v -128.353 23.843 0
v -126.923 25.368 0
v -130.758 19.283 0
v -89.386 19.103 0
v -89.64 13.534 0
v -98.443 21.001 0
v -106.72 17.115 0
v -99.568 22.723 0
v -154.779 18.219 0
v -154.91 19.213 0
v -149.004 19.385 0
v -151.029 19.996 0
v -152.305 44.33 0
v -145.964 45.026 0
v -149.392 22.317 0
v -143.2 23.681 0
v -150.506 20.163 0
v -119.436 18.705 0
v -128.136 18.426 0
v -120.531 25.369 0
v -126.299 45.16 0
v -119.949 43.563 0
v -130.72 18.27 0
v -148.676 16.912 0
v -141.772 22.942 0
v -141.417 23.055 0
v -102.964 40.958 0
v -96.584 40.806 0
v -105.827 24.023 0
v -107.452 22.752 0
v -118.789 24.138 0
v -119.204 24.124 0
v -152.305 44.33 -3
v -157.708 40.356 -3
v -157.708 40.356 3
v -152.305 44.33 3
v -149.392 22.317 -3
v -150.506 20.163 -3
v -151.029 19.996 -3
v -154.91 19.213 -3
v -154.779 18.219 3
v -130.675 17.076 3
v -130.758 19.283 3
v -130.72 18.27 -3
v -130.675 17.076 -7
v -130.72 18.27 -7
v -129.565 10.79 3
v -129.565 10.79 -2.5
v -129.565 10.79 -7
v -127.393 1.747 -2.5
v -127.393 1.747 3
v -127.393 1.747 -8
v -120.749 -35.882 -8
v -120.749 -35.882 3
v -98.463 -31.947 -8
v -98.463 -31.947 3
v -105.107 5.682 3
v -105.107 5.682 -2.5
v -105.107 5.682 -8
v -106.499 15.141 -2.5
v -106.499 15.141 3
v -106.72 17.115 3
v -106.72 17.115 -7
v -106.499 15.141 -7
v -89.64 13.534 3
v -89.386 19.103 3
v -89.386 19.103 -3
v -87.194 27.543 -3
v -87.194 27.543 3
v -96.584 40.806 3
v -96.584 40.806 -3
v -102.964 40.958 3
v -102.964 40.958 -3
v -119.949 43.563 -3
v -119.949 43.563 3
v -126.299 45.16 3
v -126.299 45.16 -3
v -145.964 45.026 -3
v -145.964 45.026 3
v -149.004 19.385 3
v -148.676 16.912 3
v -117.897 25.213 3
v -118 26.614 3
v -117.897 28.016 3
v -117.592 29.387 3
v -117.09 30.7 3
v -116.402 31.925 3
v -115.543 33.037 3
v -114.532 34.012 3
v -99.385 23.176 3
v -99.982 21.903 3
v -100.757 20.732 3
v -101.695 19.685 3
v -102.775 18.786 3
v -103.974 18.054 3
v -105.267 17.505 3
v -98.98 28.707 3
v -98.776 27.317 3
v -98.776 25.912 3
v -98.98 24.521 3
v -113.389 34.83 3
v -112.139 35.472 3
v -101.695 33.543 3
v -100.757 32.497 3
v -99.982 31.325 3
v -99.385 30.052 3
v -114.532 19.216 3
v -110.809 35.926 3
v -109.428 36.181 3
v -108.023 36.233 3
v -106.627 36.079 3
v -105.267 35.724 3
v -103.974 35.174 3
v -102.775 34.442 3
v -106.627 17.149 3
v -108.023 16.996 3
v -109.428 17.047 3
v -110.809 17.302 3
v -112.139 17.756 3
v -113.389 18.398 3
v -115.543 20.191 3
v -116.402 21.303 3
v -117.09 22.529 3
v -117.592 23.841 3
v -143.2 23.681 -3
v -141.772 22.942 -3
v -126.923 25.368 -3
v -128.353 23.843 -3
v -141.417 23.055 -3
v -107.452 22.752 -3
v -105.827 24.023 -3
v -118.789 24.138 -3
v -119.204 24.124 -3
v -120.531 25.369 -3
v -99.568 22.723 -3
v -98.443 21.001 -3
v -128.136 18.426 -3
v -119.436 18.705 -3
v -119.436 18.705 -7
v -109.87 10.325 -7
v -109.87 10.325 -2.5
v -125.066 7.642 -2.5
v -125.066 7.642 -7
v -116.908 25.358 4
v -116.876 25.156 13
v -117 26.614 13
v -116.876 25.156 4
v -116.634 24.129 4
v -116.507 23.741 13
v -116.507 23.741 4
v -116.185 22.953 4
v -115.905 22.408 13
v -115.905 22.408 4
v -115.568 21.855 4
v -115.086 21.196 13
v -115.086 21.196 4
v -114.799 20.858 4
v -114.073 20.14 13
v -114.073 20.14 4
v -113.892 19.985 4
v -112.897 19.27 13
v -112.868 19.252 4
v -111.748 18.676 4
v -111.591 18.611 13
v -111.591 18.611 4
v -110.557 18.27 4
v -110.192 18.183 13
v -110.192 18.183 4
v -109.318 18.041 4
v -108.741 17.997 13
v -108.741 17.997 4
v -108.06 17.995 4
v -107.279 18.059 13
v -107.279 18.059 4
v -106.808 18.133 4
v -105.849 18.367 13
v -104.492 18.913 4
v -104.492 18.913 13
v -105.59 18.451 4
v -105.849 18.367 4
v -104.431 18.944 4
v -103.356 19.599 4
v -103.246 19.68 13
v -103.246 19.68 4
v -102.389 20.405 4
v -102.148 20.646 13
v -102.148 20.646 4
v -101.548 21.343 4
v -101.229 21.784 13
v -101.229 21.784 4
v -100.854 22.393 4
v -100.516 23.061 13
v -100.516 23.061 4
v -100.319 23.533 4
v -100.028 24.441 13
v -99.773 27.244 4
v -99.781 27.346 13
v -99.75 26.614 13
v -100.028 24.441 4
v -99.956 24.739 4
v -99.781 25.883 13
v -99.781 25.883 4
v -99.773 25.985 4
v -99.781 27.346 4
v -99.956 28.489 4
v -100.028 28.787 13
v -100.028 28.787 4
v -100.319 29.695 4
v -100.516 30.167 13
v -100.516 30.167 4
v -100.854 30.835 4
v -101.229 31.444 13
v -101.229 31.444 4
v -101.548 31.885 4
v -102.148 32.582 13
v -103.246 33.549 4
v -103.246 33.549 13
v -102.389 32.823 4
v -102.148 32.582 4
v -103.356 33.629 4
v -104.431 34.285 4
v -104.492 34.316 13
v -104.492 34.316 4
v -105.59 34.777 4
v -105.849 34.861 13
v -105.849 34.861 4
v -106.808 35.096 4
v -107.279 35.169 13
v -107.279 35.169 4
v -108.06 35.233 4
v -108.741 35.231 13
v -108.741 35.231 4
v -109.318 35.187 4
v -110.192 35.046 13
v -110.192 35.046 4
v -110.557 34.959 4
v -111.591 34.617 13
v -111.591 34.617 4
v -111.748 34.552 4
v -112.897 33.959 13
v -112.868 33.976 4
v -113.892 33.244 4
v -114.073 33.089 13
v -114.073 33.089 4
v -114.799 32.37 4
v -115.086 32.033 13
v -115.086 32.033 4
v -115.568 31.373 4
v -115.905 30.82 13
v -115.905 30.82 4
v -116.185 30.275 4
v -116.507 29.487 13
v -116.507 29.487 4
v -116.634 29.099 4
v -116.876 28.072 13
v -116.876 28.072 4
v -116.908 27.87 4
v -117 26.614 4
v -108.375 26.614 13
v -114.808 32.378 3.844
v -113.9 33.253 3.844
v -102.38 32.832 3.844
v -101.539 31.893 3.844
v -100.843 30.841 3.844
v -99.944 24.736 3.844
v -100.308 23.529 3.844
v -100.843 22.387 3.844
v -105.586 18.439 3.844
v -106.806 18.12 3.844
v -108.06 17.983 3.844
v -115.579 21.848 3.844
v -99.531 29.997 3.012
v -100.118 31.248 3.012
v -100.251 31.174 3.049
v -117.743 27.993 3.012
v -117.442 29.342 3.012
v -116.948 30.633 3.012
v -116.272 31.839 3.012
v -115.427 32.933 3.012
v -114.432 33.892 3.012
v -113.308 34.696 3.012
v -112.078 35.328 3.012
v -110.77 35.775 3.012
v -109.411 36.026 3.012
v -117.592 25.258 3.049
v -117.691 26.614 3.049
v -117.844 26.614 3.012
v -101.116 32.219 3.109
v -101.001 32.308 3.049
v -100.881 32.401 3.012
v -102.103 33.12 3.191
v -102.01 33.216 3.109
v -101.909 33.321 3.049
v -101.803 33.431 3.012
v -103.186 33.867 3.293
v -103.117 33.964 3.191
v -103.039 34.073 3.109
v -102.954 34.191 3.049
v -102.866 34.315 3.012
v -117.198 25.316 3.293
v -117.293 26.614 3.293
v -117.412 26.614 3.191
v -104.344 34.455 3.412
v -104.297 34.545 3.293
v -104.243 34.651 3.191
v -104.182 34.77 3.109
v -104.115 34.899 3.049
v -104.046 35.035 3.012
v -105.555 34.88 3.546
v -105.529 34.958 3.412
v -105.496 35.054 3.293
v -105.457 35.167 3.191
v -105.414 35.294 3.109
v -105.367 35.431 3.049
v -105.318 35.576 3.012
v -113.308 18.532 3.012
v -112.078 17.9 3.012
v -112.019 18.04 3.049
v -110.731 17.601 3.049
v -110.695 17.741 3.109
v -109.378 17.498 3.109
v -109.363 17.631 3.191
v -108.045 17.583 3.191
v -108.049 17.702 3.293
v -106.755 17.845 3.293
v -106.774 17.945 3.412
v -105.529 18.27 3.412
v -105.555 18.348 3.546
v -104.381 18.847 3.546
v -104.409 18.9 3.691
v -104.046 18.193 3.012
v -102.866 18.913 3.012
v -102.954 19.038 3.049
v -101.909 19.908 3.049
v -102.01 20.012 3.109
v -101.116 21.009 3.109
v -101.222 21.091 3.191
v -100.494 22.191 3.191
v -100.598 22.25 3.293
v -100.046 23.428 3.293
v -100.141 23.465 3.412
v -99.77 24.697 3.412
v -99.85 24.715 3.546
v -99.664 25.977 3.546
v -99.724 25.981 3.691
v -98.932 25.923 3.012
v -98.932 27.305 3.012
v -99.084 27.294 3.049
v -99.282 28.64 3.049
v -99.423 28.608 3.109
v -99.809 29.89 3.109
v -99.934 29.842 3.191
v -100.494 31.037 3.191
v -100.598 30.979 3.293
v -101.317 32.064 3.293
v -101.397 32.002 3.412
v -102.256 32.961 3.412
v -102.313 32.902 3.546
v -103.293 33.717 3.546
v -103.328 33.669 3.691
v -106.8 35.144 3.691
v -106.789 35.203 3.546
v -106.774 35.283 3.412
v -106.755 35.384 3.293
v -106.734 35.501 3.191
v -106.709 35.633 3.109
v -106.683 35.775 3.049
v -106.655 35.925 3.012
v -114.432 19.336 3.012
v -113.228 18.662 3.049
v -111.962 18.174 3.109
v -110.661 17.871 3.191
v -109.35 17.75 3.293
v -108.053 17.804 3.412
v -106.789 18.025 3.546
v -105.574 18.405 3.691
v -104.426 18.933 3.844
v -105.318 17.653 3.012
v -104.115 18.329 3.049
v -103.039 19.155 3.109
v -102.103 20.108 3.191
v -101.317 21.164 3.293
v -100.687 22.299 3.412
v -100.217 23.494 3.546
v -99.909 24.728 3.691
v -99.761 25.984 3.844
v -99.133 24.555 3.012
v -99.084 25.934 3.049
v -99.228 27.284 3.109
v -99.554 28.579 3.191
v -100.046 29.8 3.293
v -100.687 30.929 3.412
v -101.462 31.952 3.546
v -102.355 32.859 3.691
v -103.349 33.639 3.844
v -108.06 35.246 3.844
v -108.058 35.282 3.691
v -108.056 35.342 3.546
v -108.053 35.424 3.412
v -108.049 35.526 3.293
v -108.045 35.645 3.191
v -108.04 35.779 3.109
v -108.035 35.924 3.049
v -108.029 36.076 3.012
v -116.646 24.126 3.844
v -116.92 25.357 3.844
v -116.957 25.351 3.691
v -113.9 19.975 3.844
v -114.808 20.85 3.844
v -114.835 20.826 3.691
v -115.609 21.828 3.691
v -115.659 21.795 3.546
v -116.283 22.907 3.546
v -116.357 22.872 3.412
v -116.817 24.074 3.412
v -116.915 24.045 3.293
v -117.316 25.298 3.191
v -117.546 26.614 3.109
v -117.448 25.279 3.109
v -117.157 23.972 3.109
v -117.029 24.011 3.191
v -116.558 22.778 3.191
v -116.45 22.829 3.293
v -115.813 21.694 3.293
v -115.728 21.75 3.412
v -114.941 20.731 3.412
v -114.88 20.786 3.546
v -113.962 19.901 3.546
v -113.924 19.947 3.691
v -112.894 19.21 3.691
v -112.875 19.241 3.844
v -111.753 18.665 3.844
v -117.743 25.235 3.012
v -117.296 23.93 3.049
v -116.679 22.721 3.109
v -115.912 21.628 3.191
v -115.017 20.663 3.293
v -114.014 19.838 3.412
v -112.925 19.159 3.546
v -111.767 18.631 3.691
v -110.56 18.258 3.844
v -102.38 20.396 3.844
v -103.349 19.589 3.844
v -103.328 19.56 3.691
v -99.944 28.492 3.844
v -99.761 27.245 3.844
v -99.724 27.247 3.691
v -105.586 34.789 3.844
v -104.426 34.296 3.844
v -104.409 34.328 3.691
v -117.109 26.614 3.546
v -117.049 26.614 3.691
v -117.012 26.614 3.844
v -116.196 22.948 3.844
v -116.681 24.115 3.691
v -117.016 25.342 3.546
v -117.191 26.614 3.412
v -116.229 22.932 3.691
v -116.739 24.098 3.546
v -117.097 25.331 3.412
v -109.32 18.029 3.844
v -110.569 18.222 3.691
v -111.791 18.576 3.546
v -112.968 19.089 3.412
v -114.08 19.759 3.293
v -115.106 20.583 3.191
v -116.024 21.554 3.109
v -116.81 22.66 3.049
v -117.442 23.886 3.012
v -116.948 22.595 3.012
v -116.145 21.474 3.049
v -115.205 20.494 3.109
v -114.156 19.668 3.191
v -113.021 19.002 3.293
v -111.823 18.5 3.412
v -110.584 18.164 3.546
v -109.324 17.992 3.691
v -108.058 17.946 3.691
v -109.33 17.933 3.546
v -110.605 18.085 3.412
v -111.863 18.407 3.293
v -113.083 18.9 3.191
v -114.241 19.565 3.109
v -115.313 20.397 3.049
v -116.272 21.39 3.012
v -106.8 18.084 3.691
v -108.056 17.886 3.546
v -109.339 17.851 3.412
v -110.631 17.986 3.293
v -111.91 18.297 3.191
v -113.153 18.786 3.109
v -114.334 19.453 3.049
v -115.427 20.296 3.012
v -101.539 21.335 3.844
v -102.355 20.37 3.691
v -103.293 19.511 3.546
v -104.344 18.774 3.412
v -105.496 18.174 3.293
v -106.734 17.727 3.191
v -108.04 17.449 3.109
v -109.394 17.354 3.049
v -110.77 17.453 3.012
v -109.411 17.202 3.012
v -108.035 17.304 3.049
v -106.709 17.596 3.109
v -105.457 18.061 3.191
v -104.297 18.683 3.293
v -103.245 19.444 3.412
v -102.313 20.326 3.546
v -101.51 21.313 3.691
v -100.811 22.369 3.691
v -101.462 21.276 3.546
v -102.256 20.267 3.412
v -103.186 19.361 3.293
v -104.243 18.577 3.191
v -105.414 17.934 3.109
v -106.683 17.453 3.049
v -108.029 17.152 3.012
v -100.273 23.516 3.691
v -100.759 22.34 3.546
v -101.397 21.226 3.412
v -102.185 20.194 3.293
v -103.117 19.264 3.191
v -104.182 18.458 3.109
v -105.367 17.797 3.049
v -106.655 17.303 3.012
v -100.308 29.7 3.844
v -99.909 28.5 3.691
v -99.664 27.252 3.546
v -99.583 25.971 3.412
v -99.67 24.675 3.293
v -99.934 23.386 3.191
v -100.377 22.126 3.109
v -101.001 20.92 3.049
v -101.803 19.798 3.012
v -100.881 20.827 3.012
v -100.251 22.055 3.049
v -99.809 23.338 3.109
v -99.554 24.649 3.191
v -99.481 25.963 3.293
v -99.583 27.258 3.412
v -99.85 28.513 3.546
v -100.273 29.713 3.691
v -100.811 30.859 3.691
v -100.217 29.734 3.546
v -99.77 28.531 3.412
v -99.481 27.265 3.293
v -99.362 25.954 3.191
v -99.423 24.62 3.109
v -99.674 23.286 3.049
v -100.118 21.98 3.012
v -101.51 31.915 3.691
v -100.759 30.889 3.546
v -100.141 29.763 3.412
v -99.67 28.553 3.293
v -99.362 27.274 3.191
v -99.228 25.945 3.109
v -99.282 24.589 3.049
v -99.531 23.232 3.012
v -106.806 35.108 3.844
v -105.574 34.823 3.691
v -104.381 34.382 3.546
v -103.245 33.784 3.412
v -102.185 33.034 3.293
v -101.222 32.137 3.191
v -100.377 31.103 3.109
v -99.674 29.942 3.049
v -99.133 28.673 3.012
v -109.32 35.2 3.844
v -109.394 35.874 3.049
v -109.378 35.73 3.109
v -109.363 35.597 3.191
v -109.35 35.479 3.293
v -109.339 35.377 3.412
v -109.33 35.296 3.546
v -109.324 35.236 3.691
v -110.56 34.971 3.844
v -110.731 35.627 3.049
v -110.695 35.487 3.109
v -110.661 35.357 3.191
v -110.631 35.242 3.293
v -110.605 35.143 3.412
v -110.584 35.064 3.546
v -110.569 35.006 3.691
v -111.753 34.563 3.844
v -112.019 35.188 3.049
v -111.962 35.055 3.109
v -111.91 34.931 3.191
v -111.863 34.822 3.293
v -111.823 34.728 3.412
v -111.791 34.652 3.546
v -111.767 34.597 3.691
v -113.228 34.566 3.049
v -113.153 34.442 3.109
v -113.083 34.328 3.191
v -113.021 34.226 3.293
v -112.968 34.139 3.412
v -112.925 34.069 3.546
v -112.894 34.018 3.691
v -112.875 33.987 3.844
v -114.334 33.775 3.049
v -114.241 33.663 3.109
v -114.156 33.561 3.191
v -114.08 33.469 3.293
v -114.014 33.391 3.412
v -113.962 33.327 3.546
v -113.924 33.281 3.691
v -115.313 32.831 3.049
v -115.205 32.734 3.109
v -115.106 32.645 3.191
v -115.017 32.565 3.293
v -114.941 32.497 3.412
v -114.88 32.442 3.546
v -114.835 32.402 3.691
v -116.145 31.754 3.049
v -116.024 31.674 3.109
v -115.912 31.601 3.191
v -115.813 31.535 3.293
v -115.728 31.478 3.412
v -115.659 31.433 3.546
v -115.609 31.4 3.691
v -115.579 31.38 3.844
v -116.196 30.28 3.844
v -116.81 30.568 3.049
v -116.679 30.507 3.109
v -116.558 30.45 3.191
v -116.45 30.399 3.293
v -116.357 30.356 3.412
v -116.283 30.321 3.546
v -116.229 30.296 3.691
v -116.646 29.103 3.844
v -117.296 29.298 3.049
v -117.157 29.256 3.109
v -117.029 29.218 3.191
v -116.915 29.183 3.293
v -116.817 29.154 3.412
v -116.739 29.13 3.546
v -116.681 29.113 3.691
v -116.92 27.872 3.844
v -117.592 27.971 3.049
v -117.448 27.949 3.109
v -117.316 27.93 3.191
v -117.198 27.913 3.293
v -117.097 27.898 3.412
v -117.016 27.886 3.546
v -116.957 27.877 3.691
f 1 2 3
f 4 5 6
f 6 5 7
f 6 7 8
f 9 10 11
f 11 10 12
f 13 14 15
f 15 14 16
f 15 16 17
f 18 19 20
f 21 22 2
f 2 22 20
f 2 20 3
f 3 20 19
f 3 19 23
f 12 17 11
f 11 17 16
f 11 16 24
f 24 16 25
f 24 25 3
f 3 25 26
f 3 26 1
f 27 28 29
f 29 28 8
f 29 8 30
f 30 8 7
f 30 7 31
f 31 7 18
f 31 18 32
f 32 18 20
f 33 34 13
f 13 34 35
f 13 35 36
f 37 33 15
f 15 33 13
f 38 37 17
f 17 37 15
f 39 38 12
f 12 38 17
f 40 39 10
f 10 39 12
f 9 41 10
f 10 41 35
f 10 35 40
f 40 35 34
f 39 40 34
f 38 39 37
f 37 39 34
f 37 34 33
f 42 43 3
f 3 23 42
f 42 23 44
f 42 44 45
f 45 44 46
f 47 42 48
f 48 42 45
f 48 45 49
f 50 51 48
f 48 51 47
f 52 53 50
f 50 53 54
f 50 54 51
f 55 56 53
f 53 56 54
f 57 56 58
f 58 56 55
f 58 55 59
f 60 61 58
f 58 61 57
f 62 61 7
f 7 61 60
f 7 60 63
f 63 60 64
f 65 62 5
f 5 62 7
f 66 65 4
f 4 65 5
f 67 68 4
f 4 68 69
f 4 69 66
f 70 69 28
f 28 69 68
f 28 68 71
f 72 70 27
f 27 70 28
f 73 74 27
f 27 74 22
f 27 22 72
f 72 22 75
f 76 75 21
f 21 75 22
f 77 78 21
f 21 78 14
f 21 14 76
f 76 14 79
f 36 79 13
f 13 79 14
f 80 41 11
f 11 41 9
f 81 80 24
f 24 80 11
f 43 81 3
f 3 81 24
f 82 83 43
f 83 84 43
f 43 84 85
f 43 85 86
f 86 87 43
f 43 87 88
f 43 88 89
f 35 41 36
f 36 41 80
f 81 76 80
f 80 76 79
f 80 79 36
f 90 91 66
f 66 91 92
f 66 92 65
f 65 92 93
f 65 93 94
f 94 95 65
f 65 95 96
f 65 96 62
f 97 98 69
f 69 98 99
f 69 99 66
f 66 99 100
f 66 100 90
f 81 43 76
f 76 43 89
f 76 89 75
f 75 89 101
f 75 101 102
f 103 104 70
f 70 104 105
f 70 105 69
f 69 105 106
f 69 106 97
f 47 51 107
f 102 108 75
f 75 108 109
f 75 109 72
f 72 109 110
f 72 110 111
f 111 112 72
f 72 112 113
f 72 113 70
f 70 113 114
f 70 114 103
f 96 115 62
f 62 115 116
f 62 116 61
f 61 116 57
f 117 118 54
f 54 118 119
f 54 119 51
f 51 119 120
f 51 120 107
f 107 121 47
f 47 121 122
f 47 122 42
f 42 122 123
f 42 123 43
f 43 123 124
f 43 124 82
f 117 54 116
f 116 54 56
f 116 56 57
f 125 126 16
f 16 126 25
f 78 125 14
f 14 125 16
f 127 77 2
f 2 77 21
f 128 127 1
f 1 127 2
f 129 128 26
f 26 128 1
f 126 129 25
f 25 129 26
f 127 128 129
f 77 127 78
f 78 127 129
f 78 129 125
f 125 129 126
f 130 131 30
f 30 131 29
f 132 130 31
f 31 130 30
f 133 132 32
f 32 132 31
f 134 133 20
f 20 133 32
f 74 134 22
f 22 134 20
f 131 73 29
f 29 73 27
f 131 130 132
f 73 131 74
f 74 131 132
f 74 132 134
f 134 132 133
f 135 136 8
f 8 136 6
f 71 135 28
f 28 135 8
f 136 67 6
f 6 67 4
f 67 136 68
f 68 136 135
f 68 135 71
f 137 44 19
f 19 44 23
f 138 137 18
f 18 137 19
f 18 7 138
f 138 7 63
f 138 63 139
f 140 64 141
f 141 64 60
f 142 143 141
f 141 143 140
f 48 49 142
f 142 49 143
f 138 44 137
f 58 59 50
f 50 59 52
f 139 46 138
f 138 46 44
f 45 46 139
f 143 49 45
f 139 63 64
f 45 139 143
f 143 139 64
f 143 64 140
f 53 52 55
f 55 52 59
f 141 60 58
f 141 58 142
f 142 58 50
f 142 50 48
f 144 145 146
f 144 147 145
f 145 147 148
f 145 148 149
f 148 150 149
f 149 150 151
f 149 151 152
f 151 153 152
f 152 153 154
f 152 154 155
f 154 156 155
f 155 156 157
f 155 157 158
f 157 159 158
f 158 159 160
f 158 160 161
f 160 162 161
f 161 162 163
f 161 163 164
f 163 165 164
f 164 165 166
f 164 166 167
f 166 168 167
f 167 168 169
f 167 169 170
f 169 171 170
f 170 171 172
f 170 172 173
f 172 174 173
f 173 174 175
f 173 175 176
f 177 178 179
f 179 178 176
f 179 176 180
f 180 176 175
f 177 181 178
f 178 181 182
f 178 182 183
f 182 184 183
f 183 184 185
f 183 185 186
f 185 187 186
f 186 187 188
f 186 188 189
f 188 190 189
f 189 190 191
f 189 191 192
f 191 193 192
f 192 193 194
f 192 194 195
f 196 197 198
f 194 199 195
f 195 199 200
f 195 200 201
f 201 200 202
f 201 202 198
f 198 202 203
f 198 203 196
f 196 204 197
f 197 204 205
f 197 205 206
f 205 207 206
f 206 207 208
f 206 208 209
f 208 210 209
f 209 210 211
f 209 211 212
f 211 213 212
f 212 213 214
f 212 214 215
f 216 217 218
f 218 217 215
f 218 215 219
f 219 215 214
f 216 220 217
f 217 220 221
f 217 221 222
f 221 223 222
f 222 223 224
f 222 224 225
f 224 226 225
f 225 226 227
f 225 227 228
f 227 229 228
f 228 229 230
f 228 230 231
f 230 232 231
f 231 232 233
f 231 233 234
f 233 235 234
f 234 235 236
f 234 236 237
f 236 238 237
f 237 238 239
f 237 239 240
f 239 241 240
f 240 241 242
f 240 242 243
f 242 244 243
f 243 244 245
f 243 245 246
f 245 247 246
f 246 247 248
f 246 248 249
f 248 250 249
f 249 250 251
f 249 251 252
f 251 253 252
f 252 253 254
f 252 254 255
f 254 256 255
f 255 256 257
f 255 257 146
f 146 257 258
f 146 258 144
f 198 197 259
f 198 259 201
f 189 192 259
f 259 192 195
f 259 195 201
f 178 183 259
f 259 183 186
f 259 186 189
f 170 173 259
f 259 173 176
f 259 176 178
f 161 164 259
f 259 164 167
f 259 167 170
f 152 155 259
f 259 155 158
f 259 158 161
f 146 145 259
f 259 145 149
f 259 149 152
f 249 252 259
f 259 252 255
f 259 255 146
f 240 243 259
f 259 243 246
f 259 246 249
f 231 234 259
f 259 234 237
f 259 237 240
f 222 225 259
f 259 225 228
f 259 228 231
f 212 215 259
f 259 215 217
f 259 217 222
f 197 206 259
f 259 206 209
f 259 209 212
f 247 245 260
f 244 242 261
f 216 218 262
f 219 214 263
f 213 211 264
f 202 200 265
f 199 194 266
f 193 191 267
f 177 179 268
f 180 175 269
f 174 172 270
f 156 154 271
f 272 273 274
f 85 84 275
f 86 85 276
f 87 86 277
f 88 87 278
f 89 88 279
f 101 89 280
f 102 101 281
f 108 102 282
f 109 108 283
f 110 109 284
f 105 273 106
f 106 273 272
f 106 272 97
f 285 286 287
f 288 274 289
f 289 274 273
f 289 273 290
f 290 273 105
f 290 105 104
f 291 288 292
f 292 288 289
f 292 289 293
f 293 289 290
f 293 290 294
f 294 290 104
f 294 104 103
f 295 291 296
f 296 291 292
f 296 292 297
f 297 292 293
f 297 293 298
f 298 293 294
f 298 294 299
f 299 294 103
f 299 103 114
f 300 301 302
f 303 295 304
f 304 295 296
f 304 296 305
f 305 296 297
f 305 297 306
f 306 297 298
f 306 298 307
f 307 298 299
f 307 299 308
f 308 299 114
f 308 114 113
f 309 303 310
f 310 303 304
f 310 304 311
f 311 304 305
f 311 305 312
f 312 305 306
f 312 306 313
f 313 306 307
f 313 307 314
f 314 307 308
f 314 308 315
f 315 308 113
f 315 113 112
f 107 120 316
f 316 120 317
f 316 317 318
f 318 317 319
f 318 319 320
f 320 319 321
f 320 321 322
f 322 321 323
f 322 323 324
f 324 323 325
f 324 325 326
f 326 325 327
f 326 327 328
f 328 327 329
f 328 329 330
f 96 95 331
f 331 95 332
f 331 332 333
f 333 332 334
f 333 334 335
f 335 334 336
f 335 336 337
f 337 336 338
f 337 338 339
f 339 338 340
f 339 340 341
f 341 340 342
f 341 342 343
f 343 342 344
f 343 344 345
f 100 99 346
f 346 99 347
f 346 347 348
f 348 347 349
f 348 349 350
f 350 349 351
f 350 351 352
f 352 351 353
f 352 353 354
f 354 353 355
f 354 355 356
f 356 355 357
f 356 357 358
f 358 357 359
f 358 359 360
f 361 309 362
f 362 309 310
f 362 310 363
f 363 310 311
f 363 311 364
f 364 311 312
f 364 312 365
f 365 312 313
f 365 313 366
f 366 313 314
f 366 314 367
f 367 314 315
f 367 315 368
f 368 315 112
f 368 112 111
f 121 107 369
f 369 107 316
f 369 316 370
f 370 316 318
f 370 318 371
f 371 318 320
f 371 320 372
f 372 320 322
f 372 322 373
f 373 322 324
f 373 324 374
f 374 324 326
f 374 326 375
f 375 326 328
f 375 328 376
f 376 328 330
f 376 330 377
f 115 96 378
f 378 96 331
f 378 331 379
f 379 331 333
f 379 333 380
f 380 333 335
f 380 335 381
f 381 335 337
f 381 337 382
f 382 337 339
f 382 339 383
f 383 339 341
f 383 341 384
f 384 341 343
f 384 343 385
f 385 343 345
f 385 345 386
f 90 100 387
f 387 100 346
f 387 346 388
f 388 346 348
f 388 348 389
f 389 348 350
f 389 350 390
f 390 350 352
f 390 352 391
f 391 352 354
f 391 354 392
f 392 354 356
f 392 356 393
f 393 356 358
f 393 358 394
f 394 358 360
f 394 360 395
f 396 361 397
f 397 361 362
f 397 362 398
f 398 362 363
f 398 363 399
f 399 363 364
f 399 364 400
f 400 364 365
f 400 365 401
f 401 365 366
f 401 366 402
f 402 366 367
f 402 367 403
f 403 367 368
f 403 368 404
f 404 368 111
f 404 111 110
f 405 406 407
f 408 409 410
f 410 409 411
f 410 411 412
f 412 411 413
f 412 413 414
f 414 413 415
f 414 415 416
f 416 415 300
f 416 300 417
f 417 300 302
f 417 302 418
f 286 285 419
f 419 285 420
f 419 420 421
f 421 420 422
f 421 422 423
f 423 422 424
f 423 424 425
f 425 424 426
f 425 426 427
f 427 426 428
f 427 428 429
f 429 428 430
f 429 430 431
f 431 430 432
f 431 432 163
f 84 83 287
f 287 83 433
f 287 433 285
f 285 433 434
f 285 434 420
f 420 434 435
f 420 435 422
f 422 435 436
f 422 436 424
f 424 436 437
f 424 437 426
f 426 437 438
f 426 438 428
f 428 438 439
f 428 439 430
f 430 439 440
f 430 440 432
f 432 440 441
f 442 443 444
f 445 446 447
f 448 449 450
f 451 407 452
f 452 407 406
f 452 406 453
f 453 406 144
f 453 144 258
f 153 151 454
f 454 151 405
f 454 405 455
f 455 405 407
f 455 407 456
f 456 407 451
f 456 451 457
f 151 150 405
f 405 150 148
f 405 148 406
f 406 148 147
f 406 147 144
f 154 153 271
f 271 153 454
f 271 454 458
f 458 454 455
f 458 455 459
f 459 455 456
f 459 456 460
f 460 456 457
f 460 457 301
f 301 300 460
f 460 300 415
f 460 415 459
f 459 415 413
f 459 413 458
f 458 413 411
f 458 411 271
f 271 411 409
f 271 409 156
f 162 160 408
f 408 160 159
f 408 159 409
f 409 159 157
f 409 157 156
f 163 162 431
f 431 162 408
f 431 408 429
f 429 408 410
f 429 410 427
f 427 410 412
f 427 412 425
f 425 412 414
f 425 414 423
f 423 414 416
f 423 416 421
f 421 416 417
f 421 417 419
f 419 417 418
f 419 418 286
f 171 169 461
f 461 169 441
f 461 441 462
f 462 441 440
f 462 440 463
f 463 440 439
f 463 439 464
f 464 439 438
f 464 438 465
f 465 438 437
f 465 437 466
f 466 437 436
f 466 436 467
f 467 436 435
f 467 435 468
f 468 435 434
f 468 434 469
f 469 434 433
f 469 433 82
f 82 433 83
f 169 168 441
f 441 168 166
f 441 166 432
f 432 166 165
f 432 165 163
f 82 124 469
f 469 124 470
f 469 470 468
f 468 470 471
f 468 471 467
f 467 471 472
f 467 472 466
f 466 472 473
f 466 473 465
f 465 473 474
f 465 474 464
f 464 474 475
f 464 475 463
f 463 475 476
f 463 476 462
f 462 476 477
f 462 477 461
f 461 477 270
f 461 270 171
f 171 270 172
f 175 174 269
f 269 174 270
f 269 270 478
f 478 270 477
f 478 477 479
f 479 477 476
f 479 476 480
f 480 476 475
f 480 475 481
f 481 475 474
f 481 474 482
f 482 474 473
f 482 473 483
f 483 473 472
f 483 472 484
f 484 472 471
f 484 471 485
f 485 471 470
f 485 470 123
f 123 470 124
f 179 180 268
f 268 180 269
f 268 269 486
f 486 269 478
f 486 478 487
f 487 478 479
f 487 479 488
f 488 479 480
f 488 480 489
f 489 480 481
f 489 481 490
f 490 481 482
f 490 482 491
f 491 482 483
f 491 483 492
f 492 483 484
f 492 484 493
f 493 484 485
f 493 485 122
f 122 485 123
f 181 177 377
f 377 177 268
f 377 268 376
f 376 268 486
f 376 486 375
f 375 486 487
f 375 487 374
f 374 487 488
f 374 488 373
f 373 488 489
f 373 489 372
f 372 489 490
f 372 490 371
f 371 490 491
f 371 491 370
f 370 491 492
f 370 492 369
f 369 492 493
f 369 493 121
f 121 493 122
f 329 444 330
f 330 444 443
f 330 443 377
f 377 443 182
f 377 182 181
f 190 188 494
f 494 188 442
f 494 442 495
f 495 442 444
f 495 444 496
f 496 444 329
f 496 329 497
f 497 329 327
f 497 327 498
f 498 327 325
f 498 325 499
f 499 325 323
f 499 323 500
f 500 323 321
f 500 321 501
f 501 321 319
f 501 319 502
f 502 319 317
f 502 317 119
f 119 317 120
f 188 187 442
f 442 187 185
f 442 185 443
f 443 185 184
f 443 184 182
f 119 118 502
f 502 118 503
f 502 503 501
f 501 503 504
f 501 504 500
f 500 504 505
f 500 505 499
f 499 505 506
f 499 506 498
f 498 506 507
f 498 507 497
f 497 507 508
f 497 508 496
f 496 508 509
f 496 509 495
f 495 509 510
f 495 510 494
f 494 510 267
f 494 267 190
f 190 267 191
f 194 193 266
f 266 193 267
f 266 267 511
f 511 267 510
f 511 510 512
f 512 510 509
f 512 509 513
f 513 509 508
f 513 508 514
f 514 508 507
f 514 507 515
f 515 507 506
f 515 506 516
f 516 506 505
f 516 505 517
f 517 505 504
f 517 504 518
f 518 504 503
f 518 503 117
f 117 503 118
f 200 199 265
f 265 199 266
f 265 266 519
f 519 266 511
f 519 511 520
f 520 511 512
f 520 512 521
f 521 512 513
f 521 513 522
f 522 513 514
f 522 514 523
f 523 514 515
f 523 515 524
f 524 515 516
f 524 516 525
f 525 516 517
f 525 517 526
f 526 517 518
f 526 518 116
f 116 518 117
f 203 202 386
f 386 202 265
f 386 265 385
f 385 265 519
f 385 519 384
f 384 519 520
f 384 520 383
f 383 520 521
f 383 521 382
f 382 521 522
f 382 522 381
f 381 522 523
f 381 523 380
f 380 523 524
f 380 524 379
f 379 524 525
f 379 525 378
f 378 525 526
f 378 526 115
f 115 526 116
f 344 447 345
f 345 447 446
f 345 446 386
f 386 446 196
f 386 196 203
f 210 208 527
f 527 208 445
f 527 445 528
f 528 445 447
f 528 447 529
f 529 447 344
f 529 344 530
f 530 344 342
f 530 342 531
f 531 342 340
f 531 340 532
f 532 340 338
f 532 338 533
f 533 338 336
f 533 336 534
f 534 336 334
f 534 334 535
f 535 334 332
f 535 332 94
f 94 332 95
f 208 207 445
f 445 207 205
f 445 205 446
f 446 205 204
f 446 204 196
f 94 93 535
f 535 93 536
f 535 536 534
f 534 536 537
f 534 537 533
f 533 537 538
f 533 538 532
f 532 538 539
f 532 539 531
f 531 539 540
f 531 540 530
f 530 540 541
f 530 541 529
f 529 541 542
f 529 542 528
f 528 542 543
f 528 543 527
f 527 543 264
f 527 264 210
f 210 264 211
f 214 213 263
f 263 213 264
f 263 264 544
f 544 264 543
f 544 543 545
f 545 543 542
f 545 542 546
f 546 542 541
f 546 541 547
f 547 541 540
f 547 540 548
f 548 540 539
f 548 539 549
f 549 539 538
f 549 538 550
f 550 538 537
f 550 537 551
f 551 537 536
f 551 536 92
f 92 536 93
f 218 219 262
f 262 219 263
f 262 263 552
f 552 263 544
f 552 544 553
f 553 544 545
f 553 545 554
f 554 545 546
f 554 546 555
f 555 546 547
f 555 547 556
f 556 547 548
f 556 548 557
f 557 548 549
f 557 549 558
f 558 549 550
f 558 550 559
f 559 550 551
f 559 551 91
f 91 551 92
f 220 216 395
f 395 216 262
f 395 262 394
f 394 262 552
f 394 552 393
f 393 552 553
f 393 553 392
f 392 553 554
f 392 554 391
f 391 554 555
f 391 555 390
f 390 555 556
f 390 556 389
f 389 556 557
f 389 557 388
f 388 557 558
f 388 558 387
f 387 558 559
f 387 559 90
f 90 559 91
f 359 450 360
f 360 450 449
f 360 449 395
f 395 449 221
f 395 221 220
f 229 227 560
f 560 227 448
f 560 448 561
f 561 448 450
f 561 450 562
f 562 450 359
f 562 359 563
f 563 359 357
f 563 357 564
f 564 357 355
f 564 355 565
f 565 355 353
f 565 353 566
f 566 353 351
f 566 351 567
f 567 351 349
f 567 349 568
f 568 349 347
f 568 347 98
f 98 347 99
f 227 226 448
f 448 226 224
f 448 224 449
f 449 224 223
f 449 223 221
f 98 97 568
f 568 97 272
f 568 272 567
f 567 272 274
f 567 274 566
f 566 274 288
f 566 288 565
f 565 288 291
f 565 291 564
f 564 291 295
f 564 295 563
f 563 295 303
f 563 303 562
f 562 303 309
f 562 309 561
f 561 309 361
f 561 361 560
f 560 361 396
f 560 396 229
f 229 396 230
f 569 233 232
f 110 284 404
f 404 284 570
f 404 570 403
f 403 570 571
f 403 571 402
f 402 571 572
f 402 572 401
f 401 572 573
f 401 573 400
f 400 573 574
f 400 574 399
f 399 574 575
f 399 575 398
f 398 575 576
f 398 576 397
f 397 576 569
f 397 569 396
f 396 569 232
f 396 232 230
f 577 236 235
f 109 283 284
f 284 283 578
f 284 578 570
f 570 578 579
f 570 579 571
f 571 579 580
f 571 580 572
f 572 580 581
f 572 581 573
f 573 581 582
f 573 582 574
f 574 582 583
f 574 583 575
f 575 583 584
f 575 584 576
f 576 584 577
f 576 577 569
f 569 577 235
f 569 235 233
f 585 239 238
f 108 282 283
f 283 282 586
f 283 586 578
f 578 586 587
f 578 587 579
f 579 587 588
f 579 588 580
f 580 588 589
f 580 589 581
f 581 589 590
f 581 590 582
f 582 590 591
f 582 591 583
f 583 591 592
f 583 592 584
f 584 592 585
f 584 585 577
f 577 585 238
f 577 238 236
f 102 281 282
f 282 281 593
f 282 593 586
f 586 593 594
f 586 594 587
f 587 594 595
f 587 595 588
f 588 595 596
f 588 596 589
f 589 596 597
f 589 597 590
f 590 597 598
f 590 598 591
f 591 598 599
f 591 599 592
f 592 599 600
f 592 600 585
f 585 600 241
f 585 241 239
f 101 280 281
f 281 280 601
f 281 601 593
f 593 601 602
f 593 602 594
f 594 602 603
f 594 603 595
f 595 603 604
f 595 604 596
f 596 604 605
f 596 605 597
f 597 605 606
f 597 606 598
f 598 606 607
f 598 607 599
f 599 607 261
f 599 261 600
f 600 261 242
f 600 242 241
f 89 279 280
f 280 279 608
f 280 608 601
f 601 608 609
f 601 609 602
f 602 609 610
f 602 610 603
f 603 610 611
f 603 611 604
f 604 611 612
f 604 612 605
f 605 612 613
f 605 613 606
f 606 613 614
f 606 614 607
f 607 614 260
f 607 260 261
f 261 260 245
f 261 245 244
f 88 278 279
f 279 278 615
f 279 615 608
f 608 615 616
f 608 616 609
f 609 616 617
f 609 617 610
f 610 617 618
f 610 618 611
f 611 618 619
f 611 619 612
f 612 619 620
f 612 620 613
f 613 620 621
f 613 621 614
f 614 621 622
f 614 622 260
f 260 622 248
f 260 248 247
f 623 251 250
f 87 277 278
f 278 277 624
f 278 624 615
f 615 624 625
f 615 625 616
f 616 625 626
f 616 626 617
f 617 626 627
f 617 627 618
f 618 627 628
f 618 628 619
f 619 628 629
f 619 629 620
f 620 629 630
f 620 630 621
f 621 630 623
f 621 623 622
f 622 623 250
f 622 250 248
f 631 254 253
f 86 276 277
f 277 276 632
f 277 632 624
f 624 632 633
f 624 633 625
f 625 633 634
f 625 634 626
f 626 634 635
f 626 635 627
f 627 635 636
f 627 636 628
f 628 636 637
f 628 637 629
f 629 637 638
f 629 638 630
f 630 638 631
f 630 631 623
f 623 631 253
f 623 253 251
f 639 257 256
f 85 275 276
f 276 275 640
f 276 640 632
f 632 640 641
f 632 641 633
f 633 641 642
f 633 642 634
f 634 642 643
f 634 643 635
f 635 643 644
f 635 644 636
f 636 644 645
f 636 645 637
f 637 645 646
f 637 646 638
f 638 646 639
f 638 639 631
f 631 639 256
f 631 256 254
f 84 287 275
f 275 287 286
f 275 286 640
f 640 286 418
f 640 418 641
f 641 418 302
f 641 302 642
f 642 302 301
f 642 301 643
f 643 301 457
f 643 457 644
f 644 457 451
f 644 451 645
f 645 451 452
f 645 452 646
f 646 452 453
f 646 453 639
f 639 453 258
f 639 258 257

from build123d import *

# Parameters (mm, degrees)
BOSS_EXTRUDE1_DEPTH   = 3
BOSS_EXTRUDE1_2_DEPTH = 3
BOSS_EXTRUDE1_3_DEPTH = 3
BOSS_EXTRUDE1_4_DEPTH = 3
BOSS_EXTRUDE1_5_DEPTH = 3
BOSS_EXTRUDE1_6_DEPTH = 3
BOSS_EXTRUDE2_DEPTH   = 3
BOSS_EXTRUDE3_DEPTH   = 4
BOSS_EXTRUDE4_DEPTH   = 5
BOSS_EXTRUDE5_DEPTH   = 2.5
SKETCH7_R             = 8.625
BOSS_EXTRUDE6_DEPTH   = 10
FILLET1_R             = 1


with BuildPart() as part:
    # Sketch1 → Boss-Extrude1 (new body)
    with BuildSketch(Plane.XY):
        Polygon((-157.708306786, 40.356035083), (-152.304819575, 44.329897546), (-149.391723249, 22.316986717), (-150.505818609, 20.162863795), (-151.029240558, 19.996298037), (-154.910321184, 19.21296233), align=None)
    extrude(amount=-BOSS_EXTRUDE1_DEPTH)



with BuildPart() as body_2:
    # Sketch1 → Boss-Extrude1 2 (new body)
    with BuildSketch(Plane.XY):
        Polygon((-143.200182369, 23.681067988), (-141.771708727, 22.942272705), (-141.417062609, 23.055129835), (-128.353286026, 23.842538892), (-126.923061182, 25.367546815), (-126.299118711, 45.160018639), (-145.963883673, 45.026358385), align=None)
    extrude(amount=-BOSS_EXTRUDE1_2_DEPTH)


with BuildPart() as body_3:
    # Sketch1 → Boss-Extrude1 3 (new body)
    with BuildSketch(Plane.XY):
        Polygon((-107.452313856, 22.751941247), (-105.8273555, 24.022922299), (-102.964187331, 40.958018331), (-119.948602388, 43.563327727), (-120.531202342, 25.369443818), (-119.203583194, 24.12433954), (-118.788909935, 24.137639341), align=None)
    extrude(amount=-BOSS_EXTRUDE1_3_DEPTH)


with BuildPart() as body_4:
    # Sketch1 → Boss-Extrude1 4 (new body)
    with BuildSketch(Plane.XY):
        Polygon((-99.567663538, 22.722793004), (-98.442870148, 21.001338348), (-89.386000699, 19.102739522), (-87.194407263, 27.543337474), (-96.584441251, 40.806132568), align=None)
    extrude(amount=-BOSS_EXTRUDE1_4_DEPTH)


with BuildPart() as body_5:
    # Sketch1 → Boss-Extrude1 5 (new body)
    with BuildSketch(Plane.XY):
        Polygon((-129.565242632, 10.790123413), (-130.675013398, 17.075689336), (-130.720095352, 18.270412872), (-128.136441147, 18.426140636), (-119.436419139, 18.705176142), (-106.720361509, 17.114886687), (-106.498771051, 15.1412078), (-109.869761523, 10.324632035), (-125.066433071, 7.64152887), align=None)
    extrude(amount=-BOSS_EXTRUDE1_5_DEPTH)


with BuildPart() as body_6:
    # Sketch1 → Boss-Extrude1 6 (new body)
    with BuildSketch(Plane.XY):
        Polygon((-105.107164744, 5.681988451), (-98.463483991, -31.946767529), (-120.749282124, -35.881517012), (-127.392962877, 1.747238969), align=None)
    extrude(amount=-BOSS_EXTRUDE1_6_DEPTH)


with BuildPart() as part_1:
    add(part.part)

    add(body_2.part)  # Boss-Extrude2 merges body 2

    add(body_3.part)  # Boss-Extrude2 merges body 3

    add(body_4.part)  # Boss-Extrude2 merges body 4

    add(body_5.part)  # Boss-Extrude2 merges body 5

    add(body_6.part)  # Boss-Extrude2 merges body 6
    # Sketch2 → Boss-Extrude2 (add)
    with BuildSketch(Plane.XY):
        Polygon((-154.778828939, 18.219336743), (-149.003710401, 19.384954517), (-148.676438789, 16.911915522), (-130.758309274, 19.283125657), (-130.675013398, 17.075689336), (-129.565242632, 10.790123413), (-127.392962877, 1.747238969), (-120.749282124, -35.881517012), (-98.463483991, -31.946767529), (-105.107164744, 5.681988451), (-106.498771051, 15.1412078), (-106.720361509, 17.114886687), (-89.640117023, 13.5343413), (-89.386000699, 19.102739522), (-87.194407263, 27.543337474), (-96.584441251, 40.806132568), (-102.964187331, 40.958018331), (-119.948602388, 43.563327727), (-126.299118711, 45.160018639), (-145.963883673, 45.026358385), (-152.304819575, 44.329897546), (-157.708306786, 40.356035083), align=None)
    extrude(amount=BOSS_EXTRUDE2_DEPTH)

    # Sketch3 → Boss-Extrude3 (add)
    with BuildSketch(Plane(origin=(0, 0, -3), x_dir=(-1, 0, 0), z_dir=(0, 0, -1))):
        Polygon((119.436419139, 18.705176142), (130.720095352, 18.270412872), (130.675013398, 17.075689336), (129.565242632, 10.790123413), (125.066433071, 7.64152887), (109.869761523, 10.324632035), (106.498771051, 15.1412078), (106.720361509, 17.114886687), align=None)
    extrude(amount=BOSS_EXTRUDE3_DEPTH)

    # Sketch4 → Boss-Extrude4 (add)
    with BuildSketch(Plane(origin=(0, 0, -3), x_dir=(-1, 0, 0), z_dir=(0, 0, -1))):
        Polygon((105.107164744, 5.681988451), (127.392962877, 1.747238969), (120.749282124, -35.881517012), (98.463483991, -31.946767529), align=None)
    extrude(amount=BOSS_EXTRUDE4_DEPTH)

    # Sketch5 → Boss-Extrude5 (add)
    with BuildSketch(Plane(origin=(0, 0, 0), x_dir=(-1, 0, 0), z_dir=(0, 0, -1))):
        Polygon((106.498771051, 15.1412078), (105.107164744, 5.681988451), (127.392962877, 1.747238969), (129.565242632, 10.790123413), (125.066433071, 7.64152887), (109.869761523, 10.324632035), align=None)
    extrude(amount=BOSS_EXTRUDE5_DEPTH)

    # Sketch7 → Boss-Extrude6 (add)
    with BuildSketch(Plane.XY.offset(3)):
        with Locations((-108.375015851, 26.614118497)):
            Circle(SKETCH7_R)
    extrude(amount=BOSS_EXTRUDE6_DEPTH)

    # Fillet1
    fillet1_edges = [part_1.edges().sort_by_distance(p)[0] for p in [
        (-117.000015851, 26.614118497, 3),
    ]]
    fillet(fillet1_edges, radius=FILLET1_R)


solid = part_1.part
